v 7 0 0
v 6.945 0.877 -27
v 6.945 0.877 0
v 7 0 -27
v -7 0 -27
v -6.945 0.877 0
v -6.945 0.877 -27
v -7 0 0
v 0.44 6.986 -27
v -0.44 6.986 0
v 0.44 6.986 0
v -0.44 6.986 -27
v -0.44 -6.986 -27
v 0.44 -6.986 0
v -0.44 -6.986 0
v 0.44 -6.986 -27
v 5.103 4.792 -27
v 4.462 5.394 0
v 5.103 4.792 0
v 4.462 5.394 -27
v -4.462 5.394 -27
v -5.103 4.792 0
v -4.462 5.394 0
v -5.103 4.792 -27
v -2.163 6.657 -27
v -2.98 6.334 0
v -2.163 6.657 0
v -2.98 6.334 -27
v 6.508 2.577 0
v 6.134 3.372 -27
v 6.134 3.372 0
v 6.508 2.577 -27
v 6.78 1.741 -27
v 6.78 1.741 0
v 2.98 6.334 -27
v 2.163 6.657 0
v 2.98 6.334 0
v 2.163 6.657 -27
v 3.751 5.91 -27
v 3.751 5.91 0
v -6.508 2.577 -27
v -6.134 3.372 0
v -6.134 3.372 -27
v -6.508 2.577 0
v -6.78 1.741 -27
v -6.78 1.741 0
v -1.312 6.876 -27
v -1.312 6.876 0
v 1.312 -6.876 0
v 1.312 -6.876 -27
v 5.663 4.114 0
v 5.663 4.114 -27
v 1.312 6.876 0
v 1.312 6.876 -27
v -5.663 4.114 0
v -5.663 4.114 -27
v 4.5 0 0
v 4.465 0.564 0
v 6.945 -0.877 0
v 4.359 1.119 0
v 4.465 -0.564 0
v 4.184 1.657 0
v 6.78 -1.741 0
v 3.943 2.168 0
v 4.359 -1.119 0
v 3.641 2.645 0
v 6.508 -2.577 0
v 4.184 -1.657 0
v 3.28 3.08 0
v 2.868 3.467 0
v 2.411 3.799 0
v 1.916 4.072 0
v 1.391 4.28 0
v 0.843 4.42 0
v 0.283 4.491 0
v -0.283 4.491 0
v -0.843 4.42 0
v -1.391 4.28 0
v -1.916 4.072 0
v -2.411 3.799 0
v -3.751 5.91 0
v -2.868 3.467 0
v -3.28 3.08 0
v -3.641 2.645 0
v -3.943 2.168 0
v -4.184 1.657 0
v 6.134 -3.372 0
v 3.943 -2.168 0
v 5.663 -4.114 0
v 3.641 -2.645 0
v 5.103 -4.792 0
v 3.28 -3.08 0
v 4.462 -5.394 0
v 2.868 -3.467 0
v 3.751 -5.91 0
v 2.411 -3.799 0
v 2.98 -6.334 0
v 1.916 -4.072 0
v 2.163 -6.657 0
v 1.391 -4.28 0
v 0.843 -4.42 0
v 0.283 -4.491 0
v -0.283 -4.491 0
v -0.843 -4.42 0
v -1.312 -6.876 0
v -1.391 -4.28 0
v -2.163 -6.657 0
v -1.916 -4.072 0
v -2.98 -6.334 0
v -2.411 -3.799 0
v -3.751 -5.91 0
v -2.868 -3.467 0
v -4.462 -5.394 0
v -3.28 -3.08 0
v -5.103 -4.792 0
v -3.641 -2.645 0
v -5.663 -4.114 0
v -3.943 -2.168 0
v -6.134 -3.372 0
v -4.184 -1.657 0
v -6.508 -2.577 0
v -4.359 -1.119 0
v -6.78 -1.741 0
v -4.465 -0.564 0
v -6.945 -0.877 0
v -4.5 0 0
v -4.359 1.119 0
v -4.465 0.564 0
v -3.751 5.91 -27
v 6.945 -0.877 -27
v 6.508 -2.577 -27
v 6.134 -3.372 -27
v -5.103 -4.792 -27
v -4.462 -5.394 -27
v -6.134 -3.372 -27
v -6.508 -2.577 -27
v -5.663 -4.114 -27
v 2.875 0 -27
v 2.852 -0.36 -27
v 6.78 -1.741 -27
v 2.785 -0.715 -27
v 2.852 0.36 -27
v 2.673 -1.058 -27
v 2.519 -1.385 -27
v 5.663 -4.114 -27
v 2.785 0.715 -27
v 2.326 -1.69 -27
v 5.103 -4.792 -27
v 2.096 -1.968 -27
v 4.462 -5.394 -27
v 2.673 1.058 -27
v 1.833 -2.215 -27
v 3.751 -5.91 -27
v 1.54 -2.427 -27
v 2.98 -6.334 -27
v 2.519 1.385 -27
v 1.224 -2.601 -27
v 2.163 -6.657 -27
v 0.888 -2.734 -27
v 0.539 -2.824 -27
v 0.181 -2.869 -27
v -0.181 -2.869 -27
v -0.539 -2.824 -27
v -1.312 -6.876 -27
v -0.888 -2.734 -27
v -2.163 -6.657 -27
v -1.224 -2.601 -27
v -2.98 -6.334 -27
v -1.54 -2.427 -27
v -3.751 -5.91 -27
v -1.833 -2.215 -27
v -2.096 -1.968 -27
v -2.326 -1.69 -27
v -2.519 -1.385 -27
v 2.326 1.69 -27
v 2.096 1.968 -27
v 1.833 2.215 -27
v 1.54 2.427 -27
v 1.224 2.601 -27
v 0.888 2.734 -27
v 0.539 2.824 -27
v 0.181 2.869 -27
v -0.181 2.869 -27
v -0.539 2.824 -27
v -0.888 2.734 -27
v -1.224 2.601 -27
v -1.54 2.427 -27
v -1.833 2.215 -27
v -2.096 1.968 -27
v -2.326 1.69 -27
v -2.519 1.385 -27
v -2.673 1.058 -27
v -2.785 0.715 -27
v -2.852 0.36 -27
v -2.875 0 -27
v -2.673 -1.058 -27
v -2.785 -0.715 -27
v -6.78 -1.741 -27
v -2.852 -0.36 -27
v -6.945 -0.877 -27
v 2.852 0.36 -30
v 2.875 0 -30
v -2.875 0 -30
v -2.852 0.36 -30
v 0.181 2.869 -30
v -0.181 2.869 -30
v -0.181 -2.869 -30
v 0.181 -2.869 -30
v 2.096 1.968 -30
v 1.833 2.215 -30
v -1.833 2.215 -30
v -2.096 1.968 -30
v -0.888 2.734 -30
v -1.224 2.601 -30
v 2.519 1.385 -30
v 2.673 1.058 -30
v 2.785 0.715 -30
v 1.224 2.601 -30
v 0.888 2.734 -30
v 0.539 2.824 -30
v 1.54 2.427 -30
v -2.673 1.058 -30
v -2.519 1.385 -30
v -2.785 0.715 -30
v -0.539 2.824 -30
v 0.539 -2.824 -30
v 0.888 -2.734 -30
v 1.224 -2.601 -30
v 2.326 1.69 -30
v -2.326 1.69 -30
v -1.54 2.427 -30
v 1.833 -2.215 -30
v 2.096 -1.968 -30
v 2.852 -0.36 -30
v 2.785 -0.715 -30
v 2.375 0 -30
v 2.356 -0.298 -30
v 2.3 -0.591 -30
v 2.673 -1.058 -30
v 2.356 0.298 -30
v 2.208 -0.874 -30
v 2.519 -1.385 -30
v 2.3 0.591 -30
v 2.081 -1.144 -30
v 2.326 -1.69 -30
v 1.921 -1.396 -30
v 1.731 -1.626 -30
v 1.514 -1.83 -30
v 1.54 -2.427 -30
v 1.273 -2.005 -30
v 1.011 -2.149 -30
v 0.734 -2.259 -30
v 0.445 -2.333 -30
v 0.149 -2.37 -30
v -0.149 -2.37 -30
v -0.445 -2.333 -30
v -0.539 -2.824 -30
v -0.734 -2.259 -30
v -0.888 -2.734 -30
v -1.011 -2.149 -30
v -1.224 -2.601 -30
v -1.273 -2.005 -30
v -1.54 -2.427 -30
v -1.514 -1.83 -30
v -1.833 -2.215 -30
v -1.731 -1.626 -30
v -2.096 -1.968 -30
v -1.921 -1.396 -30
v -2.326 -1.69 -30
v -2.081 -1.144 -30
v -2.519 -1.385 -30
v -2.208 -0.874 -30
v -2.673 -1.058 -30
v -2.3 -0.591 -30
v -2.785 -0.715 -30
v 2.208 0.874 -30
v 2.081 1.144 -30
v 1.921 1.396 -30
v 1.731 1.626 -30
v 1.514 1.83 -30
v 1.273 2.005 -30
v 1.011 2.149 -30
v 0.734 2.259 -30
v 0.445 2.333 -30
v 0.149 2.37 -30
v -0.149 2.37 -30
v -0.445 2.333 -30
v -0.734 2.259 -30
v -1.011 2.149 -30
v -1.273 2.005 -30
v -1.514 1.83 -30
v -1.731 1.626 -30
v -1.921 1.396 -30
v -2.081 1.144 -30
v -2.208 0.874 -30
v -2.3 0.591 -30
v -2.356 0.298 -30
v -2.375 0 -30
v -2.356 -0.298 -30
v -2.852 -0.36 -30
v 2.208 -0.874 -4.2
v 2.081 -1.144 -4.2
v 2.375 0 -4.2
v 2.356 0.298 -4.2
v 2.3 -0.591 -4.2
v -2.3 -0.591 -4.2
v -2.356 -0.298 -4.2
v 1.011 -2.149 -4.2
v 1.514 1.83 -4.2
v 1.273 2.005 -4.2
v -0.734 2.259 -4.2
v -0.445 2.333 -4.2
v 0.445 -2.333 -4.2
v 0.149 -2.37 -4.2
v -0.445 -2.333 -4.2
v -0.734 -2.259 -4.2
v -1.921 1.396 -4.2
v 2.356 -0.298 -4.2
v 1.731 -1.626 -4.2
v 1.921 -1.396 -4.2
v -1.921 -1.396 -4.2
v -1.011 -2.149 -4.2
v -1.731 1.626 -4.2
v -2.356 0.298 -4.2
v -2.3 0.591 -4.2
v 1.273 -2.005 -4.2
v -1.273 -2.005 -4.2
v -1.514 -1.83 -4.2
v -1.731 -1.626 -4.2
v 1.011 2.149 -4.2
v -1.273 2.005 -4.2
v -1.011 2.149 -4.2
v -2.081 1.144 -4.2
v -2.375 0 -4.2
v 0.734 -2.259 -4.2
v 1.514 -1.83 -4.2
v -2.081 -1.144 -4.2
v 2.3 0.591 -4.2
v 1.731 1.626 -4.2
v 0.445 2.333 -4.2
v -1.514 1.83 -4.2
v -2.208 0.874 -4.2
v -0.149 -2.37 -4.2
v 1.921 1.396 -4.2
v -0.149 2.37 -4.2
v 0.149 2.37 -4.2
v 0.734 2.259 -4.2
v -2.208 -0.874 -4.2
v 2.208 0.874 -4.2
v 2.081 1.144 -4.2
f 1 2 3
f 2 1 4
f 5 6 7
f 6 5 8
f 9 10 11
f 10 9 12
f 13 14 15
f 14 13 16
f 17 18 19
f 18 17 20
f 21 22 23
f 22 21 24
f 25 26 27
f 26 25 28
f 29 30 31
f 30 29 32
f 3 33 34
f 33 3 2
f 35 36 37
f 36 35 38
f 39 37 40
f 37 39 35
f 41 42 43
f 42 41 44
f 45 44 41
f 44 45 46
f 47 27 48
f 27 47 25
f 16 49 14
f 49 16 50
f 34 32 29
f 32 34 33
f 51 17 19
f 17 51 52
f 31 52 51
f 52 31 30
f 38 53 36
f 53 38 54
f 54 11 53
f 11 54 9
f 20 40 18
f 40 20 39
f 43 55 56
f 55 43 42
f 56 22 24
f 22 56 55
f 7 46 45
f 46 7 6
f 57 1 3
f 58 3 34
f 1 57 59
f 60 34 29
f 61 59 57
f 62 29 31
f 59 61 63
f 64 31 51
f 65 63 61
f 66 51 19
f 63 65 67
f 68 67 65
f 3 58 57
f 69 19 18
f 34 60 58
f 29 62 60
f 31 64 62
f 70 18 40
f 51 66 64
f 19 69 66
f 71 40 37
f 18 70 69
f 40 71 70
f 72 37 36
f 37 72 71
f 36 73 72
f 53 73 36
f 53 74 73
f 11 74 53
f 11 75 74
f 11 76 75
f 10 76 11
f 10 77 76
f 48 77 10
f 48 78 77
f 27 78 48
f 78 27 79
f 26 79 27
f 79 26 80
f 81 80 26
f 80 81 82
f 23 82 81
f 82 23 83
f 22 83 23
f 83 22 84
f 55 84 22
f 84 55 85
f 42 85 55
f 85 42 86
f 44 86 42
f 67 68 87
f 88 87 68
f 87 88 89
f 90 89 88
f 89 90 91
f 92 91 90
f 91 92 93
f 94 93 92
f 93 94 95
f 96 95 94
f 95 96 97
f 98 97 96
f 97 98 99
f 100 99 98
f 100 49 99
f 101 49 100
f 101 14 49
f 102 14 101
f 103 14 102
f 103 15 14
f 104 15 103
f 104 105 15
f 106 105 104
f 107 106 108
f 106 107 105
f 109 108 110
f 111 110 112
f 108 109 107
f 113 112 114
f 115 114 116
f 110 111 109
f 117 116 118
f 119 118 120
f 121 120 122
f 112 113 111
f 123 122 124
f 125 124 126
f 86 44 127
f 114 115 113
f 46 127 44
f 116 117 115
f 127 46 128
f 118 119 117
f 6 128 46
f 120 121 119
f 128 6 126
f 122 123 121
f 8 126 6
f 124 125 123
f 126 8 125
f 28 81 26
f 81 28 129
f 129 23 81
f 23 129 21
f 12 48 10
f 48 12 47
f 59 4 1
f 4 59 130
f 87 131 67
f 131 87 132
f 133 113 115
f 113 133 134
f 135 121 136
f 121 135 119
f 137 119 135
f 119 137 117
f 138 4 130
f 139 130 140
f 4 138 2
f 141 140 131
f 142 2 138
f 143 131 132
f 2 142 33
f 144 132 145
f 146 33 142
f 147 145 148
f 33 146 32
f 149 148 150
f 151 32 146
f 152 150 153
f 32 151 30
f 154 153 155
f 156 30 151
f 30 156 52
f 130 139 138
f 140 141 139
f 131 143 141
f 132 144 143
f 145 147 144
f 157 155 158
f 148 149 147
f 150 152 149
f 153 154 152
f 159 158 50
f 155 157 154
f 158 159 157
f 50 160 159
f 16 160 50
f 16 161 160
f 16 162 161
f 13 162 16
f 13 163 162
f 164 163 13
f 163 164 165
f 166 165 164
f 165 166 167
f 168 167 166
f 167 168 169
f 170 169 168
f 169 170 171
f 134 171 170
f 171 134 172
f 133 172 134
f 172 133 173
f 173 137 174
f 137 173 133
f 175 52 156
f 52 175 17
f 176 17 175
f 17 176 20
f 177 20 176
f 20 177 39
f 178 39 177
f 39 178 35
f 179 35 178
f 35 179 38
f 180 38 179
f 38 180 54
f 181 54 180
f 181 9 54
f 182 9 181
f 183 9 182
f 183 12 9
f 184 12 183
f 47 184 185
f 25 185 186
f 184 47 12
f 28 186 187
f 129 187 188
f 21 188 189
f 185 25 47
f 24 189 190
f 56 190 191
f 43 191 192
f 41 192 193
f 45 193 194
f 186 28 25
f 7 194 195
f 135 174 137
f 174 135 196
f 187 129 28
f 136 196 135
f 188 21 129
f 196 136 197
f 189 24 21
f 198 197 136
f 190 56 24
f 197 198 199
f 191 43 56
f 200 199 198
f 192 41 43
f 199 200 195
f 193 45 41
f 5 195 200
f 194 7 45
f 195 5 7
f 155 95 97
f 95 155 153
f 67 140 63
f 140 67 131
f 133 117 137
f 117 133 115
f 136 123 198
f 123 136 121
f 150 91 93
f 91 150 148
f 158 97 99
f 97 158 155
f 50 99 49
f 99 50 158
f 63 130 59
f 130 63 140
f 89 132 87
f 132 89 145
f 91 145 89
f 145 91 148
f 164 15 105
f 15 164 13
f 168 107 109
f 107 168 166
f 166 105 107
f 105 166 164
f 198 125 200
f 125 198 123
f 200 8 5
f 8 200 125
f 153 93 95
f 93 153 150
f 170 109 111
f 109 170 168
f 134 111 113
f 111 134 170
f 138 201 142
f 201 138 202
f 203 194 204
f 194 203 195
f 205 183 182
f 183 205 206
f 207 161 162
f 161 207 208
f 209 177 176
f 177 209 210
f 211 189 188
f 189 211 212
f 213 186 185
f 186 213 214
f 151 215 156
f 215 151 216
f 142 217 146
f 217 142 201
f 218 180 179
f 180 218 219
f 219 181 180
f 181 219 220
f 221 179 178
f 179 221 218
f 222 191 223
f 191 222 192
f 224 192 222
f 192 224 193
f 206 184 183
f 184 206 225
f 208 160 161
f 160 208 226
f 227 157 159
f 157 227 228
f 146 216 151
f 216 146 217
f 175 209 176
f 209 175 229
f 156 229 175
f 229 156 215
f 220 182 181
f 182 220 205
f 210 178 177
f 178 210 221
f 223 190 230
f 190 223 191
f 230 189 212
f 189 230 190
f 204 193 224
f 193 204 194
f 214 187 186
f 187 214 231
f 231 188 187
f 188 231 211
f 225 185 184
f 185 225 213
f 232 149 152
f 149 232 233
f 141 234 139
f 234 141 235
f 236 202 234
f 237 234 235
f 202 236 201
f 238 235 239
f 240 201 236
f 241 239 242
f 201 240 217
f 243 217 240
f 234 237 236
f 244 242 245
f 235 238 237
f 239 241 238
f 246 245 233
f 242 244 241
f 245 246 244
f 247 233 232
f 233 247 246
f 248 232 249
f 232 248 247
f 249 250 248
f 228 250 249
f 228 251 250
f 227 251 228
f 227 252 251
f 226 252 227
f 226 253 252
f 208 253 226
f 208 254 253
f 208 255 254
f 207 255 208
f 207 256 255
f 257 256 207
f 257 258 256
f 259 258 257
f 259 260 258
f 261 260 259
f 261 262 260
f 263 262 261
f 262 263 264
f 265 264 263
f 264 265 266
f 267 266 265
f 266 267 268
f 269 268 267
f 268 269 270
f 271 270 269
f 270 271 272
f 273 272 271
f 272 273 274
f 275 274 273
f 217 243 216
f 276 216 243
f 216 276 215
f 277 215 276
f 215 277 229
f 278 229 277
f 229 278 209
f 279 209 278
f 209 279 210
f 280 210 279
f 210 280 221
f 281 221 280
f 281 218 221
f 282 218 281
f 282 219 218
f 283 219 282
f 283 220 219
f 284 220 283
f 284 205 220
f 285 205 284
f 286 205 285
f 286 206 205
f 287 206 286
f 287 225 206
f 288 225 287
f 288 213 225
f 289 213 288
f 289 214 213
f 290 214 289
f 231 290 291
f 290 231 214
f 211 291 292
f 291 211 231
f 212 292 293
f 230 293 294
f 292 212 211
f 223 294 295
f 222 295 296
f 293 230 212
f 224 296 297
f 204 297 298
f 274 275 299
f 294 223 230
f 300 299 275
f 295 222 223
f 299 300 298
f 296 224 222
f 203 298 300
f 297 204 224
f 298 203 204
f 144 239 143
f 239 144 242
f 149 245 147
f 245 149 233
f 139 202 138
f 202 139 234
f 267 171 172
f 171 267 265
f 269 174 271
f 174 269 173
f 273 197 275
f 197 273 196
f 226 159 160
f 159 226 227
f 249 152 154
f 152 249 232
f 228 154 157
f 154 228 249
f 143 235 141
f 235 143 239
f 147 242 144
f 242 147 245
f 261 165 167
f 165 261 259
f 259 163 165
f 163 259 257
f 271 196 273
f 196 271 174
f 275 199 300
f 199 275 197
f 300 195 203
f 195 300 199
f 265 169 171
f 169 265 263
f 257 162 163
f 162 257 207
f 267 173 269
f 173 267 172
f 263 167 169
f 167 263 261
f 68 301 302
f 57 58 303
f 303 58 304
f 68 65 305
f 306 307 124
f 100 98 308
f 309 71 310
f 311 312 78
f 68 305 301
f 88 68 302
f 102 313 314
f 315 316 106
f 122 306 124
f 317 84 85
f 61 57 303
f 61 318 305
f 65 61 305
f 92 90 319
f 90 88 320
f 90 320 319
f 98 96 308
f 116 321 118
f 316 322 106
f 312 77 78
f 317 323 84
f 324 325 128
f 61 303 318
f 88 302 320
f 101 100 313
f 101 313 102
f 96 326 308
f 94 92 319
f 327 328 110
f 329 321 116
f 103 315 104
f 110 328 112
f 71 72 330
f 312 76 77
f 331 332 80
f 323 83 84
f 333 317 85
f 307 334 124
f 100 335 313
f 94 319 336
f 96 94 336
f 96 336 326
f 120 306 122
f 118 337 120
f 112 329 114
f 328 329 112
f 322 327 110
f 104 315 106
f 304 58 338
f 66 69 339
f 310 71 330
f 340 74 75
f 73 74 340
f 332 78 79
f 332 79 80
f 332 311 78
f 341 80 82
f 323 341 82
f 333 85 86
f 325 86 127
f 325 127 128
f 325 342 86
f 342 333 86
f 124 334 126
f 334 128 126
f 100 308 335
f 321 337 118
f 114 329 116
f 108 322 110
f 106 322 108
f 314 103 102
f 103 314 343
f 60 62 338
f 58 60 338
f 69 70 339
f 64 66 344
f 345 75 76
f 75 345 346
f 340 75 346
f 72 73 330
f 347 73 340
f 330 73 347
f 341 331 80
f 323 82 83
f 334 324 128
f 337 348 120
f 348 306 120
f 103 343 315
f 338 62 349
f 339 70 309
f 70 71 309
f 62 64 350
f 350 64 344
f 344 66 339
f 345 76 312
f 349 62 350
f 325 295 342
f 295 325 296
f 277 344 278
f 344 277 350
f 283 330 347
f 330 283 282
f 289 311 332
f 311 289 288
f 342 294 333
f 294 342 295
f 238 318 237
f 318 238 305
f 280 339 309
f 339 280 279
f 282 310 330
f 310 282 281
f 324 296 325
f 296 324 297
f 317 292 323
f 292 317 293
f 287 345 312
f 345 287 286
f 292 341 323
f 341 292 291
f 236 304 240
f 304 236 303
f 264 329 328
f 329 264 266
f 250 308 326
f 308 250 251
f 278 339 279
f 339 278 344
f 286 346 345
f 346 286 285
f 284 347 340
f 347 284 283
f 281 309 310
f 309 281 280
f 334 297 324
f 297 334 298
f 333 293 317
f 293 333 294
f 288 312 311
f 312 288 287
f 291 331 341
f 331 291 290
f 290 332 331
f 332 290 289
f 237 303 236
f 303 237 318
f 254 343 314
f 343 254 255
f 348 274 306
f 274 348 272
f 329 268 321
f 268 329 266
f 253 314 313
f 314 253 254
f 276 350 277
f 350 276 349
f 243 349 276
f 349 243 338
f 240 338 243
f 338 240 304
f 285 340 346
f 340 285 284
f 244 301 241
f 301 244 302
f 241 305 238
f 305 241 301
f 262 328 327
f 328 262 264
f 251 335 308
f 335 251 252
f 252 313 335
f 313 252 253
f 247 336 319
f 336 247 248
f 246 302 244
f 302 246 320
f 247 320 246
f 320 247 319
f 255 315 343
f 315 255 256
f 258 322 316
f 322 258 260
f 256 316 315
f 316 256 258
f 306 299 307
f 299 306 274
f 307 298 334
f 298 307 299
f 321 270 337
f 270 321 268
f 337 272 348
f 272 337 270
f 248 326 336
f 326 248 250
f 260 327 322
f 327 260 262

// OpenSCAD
$fn = 50;

difference() {
	union() {
		translate(v = [0, 0, -27.0]) {
			cylinder(h = 27, r = 7.0);
		}
		#translate(v = [0, 0, -30.0]) {
			cylinder(h = 30, r = 2.875);
		}
	}
	union() {
		translate(v = [0, 0, 0]) {
			rotate(a = [0, 0, 0]) {
				difference() {
					union() {
						translate(v = [0, 0, -30.0]) {
							cylinder(h = 30, r = 2.25);
						}
						translate(v = [0, 0, -4.2]) {
							cylinder(h = 4.2, r1 = 2.375, r2 = 4.5);
						}
						translate(v = [0, 0, -30.0]) {
							cylinder(h = 30, r = 2.375);
						}
						translate(v = [0, 0, -30.0]) {
							cylinder(h = 30, r = 2.25);
						}
					}
					union();
				}
			}
		}
	}
}
